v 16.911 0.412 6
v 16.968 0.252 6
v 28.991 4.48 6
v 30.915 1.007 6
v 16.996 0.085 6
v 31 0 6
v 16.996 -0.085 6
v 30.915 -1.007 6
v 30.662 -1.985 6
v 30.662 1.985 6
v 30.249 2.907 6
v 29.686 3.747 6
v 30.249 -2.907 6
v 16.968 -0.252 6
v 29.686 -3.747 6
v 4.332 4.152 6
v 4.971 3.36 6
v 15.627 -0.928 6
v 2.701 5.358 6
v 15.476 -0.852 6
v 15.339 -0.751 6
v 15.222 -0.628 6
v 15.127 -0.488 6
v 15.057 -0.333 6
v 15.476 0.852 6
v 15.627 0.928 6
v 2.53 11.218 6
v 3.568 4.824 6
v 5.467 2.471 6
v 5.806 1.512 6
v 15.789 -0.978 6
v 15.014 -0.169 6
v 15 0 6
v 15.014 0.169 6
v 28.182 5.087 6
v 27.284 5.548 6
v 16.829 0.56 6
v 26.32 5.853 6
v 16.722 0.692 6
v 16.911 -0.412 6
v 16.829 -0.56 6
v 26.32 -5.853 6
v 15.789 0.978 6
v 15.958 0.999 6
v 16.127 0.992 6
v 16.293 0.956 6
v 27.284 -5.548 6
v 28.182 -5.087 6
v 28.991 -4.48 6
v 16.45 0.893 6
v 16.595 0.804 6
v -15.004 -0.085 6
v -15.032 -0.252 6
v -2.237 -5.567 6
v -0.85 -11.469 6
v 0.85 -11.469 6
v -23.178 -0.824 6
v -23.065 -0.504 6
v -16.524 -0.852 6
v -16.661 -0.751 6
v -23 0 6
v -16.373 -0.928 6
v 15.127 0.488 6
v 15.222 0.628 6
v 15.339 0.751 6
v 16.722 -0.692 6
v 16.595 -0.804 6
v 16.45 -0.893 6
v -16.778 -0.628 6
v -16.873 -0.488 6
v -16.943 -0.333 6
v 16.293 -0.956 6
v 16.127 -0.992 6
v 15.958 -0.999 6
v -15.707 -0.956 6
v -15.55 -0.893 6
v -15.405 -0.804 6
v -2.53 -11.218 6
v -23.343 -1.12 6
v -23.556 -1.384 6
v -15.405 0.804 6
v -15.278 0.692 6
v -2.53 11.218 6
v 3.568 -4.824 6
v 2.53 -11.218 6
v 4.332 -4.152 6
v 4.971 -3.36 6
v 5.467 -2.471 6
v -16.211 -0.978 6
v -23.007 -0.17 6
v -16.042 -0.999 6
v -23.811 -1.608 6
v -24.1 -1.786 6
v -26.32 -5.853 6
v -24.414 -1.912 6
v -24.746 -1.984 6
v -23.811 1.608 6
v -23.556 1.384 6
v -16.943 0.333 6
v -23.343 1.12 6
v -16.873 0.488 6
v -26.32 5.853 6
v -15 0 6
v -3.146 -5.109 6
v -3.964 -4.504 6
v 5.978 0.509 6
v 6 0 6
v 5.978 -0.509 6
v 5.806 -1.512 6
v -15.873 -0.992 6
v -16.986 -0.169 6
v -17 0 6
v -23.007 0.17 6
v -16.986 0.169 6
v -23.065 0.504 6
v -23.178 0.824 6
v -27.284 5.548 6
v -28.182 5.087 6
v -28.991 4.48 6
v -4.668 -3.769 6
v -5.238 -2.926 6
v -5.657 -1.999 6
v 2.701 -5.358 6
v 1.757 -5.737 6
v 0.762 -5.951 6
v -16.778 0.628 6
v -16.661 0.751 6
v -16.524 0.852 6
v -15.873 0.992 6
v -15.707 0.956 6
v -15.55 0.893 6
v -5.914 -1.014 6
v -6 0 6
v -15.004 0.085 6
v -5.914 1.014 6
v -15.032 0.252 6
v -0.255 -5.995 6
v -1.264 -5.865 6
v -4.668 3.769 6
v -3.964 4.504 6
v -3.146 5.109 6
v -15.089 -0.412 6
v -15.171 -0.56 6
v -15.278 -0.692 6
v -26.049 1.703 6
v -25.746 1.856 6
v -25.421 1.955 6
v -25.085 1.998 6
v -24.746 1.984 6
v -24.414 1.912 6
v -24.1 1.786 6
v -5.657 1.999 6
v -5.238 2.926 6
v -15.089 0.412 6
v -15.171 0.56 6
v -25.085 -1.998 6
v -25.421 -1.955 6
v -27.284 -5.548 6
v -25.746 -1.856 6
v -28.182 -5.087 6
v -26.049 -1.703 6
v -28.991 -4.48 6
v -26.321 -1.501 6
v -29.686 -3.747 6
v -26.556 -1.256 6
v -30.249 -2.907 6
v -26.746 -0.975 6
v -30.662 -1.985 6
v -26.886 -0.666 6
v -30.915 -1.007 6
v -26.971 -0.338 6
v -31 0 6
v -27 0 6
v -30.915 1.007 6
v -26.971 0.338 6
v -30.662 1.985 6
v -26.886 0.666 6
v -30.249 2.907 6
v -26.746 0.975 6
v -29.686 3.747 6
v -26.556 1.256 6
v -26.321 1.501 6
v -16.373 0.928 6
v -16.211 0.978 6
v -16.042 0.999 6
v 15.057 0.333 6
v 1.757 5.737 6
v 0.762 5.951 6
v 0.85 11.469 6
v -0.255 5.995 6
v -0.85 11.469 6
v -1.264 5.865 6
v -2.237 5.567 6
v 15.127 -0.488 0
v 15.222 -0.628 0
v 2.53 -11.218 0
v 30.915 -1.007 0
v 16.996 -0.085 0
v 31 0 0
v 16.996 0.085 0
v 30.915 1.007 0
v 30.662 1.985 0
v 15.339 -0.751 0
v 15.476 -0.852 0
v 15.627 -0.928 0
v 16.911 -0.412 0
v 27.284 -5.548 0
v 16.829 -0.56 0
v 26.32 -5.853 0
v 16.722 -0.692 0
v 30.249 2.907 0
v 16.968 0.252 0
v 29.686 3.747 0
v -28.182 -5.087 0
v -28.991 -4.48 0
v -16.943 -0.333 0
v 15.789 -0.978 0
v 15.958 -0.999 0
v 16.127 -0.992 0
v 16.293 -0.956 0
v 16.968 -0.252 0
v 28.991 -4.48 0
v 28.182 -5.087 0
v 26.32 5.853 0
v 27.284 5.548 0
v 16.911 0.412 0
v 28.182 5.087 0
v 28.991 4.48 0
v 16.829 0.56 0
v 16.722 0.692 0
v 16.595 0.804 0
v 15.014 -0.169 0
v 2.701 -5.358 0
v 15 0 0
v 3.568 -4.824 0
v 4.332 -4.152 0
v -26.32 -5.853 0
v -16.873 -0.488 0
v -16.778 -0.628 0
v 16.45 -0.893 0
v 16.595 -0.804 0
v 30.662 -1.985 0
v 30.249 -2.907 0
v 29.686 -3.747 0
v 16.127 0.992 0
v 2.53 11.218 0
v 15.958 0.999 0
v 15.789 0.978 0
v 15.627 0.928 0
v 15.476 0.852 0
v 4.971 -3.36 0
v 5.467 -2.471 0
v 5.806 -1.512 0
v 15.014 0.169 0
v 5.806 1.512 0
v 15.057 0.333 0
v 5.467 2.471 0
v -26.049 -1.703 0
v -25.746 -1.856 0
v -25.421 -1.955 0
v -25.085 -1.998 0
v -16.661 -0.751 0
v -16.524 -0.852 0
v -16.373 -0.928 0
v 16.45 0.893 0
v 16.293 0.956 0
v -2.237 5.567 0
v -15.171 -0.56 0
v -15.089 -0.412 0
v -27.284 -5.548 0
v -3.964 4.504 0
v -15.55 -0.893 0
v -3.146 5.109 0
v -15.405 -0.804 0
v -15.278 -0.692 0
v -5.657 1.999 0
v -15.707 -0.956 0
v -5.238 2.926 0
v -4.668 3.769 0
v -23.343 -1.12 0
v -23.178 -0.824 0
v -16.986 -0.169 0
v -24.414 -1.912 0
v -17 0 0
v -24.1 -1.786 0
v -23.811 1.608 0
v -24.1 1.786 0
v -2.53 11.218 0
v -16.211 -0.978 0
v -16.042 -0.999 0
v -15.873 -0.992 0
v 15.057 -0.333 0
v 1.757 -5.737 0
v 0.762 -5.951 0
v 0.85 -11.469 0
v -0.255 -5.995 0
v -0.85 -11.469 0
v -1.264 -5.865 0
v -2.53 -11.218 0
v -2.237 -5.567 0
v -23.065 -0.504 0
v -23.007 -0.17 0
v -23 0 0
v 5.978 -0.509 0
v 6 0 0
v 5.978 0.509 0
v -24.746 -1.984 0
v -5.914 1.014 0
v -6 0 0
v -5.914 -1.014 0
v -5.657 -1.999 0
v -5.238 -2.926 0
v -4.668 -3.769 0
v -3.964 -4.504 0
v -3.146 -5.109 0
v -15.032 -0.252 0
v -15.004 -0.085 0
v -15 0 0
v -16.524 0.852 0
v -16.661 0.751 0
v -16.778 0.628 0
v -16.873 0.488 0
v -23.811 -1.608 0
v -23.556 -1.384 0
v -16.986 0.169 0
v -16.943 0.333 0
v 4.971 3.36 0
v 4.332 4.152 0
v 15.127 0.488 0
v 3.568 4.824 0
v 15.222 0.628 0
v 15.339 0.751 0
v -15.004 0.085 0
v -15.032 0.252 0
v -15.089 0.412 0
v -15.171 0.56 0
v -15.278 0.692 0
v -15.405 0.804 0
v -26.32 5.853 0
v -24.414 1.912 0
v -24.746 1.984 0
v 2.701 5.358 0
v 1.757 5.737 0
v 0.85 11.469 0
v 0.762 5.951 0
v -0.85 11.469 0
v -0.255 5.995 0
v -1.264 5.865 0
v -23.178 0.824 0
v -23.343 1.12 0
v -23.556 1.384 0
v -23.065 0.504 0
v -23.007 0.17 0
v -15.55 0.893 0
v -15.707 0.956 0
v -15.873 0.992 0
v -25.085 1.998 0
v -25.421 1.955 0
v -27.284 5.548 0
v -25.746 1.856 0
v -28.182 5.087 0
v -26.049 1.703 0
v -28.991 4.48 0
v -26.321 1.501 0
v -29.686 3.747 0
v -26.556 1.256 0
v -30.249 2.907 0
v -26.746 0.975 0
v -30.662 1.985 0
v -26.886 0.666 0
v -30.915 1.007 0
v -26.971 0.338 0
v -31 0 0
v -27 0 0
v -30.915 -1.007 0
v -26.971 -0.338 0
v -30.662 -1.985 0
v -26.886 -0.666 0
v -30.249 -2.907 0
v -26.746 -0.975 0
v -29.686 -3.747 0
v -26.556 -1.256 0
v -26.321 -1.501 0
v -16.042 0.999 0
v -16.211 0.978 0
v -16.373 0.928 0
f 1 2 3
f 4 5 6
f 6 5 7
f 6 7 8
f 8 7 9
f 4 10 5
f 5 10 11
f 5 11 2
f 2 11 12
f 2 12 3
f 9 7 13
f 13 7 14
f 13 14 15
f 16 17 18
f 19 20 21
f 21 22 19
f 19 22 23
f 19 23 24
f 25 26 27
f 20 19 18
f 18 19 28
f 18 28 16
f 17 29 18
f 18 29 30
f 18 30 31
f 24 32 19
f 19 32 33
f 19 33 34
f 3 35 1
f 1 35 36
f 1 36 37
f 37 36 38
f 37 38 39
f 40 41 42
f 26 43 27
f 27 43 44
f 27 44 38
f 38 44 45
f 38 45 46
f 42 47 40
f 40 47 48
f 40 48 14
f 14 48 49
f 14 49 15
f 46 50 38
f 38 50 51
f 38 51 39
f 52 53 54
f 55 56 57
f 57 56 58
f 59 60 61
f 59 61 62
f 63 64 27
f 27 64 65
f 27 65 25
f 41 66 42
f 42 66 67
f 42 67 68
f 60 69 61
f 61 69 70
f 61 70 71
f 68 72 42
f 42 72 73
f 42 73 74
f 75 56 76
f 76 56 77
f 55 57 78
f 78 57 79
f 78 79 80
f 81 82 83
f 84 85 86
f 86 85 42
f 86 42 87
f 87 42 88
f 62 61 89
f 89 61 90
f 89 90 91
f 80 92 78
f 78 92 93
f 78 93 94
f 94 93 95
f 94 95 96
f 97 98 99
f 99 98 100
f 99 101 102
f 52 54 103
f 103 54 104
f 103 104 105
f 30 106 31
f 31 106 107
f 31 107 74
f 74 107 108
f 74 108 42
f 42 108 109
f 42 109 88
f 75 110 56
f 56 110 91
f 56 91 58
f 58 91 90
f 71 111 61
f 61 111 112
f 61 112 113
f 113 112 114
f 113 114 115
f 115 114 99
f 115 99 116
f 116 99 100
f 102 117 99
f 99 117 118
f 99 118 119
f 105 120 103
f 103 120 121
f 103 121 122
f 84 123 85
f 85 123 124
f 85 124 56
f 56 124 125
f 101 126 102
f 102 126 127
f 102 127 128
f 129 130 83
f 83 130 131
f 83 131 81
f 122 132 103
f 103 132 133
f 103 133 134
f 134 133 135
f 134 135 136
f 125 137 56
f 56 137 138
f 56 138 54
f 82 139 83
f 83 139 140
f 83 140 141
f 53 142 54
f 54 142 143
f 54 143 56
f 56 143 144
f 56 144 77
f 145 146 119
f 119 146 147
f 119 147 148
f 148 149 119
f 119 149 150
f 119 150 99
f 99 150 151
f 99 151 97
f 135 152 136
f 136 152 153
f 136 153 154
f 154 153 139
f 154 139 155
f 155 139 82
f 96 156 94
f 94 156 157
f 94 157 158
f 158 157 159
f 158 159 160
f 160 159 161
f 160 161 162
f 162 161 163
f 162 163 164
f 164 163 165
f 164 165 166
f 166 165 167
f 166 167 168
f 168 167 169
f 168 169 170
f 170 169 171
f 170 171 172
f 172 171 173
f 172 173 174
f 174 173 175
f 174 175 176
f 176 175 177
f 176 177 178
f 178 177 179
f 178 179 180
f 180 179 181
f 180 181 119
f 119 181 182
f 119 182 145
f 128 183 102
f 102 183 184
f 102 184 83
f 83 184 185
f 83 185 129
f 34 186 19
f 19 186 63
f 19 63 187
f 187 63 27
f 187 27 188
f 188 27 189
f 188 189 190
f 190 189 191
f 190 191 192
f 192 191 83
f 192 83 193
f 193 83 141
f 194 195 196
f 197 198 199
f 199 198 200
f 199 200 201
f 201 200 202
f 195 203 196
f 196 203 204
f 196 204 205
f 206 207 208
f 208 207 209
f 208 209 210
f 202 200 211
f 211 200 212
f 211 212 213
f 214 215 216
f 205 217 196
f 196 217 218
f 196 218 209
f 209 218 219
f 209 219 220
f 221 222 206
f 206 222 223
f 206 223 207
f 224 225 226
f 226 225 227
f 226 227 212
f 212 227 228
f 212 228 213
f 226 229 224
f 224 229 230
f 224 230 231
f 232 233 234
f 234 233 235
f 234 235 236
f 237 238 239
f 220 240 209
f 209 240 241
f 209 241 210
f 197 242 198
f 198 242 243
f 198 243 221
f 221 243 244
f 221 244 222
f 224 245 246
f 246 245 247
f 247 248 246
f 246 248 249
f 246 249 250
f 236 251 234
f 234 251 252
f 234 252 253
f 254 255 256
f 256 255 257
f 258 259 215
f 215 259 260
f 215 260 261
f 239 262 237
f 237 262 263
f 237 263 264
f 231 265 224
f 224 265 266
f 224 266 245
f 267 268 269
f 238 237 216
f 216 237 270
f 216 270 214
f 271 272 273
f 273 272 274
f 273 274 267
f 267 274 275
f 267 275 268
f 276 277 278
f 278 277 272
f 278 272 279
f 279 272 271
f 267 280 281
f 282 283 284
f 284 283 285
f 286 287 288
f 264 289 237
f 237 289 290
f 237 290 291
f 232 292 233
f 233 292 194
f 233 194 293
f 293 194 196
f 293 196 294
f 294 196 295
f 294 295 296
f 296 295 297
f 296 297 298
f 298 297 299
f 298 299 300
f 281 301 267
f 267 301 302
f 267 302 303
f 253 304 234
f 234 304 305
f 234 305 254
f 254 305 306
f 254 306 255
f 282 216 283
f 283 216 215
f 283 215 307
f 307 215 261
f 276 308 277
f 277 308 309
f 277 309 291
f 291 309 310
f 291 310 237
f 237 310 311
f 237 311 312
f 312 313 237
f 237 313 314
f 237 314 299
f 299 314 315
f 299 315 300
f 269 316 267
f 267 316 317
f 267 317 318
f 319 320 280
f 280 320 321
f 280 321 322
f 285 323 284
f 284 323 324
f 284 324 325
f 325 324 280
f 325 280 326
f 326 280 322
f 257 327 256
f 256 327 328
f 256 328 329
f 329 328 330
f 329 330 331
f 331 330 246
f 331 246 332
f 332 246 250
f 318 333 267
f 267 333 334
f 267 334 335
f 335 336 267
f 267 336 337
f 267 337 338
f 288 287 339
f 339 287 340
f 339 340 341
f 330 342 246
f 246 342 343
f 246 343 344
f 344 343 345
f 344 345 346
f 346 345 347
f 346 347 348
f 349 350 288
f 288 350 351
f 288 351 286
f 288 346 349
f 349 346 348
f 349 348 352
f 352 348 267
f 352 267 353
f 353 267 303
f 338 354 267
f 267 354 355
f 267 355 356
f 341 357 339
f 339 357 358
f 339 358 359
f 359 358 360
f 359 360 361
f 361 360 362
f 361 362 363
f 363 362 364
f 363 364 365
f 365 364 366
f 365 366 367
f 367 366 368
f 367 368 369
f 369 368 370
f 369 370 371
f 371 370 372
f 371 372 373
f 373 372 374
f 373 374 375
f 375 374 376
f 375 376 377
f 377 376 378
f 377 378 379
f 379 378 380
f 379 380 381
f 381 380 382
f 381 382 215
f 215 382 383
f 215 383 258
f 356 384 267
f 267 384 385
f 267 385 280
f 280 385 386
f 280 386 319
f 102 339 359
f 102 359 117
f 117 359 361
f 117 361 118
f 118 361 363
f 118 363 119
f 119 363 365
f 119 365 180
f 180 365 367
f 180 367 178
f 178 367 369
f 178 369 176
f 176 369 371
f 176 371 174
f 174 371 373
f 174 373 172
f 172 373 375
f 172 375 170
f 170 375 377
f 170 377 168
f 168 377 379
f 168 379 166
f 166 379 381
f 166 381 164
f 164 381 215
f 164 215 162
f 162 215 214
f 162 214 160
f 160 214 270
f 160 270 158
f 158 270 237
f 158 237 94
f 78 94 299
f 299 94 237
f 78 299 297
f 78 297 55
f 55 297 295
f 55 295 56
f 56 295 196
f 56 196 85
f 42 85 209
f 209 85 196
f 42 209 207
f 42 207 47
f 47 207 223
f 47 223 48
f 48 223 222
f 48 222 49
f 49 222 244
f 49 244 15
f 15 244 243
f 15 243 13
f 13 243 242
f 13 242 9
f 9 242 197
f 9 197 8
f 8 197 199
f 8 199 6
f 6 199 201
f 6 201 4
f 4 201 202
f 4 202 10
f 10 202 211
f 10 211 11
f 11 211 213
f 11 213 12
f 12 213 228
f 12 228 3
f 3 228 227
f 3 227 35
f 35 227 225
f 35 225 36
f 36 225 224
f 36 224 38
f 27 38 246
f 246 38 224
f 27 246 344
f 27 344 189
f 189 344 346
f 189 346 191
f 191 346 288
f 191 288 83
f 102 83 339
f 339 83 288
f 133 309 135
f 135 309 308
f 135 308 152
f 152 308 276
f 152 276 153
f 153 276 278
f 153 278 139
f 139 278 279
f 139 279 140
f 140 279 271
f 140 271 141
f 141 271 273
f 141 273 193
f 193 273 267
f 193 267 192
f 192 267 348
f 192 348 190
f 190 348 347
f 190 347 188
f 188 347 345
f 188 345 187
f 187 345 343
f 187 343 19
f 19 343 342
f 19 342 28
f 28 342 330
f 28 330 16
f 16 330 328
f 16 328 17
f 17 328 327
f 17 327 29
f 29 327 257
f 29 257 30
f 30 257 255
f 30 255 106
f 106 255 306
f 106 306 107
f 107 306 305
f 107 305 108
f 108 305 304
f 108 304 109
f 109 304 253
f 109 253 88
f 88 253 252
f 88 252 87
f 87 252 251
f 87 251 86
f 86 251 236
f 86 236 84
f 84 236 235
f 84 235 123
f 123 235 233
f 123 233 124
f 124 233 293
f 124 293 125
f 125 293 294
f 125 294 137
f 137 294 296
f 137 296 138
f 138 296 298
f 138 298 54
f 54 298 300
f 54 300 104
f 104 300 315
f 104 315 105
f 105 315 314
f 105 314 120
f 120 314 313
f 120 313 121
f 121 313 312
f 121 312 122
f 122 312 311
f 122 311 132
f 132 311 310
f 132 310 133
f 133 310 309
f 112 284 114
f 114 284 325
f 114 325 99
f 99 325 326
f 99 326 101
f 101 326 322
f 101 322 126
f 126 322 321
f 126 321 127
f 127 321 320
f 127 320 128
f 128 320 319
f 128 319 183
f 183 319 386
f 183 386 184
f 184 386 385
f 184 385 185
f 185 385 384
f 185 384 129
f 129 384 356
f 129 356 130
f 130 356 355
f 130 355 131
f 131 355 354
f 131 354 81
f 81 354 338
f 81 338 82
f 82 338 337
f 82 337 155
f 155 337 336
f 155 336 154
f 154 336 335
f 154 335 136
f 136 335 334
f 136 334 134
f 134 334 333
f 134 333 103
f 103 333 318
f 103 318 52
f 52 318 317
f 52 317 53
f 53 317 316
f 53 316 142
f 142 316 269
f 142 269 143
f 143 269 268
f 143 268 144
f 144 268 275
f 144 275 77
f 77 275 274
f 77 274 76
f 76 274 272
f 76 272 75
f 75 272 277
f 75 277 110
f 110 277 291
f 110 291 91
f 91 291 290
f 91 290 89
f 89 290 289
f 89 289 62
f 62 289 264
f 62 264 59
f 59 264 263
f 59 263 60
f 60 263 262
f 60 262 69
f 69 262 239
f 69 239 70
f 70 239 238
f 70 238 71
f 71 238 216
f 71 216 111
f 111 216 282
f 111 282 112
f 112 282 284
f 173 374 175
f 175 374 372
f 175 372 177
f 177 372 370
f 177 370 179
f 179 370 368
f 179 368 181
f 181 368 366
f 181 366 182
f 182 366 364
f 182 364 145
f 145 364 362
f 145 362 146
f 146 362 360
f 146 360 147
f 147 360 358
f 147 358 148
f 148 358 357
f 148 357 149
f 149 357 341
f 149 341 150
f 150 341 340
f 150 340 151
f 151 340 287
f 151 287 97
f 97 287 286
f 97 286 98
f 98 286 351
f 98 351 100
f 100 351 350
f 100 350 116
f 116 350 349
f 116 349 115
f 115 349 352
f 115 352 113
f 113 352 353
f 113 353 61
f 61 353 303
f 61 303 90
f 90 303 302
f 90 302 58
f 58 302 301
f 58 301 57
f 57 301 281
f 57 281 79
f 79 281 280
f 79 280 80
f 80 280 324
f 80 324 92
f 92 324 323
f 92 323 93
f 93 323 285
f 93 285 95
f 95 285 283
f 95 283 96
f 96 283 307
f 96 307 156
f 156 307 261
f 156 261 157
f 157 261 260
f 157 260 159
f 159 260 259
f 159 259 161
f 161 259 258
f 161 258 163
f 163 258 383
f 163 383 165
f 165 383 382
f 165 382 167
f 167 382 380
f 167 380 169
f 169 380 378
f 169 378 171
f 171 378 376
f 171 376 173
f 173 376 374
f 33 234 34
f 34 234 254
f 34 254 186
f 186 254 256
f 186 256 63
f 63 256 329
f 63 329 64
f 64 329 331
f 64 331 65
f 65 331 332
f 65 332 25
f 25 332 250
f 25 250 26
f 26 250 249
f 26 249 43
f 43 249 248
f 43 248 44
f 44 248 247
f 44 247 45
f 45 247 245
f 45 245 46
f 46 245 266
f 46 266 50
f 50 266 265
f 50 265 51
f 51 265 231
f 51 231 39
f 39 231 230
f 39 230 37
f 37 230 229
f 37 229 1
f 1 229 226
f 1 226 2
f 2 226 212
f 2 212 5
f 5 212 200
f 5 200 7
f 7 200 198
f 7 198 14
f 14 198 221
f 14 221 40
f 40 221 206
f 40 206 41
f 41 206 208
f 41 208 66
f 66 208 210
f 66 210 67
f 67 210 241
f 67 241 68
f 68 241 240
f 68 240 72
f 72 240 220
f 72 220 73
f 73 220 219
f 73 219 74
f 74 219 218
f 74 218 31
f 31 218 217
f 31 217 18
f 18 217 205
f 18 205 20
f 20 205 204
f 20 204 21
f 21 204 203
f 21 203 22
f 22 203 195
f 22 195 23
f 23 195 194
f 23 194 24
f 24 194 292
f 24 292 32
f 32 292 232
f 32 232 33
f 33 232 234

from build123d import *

# Parameters (mm, degrees)
CROQUIS1_R              = 2
CROQUIS1_R_2            = 6
CROQUIS1_R_3            = 1
SALIENTE_EXTRUIR1_DEPTH = 6


with BuildPart() as part:
    # Croquis1 → Saliente-Extruir1 (new body)
    with BuildSketch(Plane.XY):
        with BuildLine():
            Line((-26.32, 5.852999231), (-2.53, 11.218248526))
            ThreePointArc((-2.53, 11.218248526), (0, 11.5), (2.53, 11.218248526))
            Line((2.53, 11.218248526), (26.32, 5.852999231))
            ThreePointArc((26.32, 5.852999231), (31, 0), (26.32, -5.852999231))
            Line((26.32, -5.852999231), (2.53, -11.218248526))
            ThreePointArc((2.53, -11.218248526), (0, -11.5), (-2.53, -11.218248526))
            Line((-2.53, -11.218248526), (-26.32, -5.852999231))
            ThreePointArc((-26.32, -5.852999231), (-31, 0), (-26.32, 5.852999231))
        make_face()
        with Locations((-25, 0)):
            Circle(CROQUIS1_R, mode=Mode.SUBTRACT)
        Circle(CROQUIS1_R_2, mode=Mode.SUBTRACT)
        with Locations((-16, 0)):
            Circle(CROQUIS1_R_3, mode=Mode.SUBTRACT)
        with Locations(Location((16, 0, 0), (0, 0, 180))):
            Circle(CROQUIS1_R_3, mode=Mode.SUBTRACT)
    extrude(amount=SALIENTE_EXTRUIR1_DEPTH)


solid = part.part
